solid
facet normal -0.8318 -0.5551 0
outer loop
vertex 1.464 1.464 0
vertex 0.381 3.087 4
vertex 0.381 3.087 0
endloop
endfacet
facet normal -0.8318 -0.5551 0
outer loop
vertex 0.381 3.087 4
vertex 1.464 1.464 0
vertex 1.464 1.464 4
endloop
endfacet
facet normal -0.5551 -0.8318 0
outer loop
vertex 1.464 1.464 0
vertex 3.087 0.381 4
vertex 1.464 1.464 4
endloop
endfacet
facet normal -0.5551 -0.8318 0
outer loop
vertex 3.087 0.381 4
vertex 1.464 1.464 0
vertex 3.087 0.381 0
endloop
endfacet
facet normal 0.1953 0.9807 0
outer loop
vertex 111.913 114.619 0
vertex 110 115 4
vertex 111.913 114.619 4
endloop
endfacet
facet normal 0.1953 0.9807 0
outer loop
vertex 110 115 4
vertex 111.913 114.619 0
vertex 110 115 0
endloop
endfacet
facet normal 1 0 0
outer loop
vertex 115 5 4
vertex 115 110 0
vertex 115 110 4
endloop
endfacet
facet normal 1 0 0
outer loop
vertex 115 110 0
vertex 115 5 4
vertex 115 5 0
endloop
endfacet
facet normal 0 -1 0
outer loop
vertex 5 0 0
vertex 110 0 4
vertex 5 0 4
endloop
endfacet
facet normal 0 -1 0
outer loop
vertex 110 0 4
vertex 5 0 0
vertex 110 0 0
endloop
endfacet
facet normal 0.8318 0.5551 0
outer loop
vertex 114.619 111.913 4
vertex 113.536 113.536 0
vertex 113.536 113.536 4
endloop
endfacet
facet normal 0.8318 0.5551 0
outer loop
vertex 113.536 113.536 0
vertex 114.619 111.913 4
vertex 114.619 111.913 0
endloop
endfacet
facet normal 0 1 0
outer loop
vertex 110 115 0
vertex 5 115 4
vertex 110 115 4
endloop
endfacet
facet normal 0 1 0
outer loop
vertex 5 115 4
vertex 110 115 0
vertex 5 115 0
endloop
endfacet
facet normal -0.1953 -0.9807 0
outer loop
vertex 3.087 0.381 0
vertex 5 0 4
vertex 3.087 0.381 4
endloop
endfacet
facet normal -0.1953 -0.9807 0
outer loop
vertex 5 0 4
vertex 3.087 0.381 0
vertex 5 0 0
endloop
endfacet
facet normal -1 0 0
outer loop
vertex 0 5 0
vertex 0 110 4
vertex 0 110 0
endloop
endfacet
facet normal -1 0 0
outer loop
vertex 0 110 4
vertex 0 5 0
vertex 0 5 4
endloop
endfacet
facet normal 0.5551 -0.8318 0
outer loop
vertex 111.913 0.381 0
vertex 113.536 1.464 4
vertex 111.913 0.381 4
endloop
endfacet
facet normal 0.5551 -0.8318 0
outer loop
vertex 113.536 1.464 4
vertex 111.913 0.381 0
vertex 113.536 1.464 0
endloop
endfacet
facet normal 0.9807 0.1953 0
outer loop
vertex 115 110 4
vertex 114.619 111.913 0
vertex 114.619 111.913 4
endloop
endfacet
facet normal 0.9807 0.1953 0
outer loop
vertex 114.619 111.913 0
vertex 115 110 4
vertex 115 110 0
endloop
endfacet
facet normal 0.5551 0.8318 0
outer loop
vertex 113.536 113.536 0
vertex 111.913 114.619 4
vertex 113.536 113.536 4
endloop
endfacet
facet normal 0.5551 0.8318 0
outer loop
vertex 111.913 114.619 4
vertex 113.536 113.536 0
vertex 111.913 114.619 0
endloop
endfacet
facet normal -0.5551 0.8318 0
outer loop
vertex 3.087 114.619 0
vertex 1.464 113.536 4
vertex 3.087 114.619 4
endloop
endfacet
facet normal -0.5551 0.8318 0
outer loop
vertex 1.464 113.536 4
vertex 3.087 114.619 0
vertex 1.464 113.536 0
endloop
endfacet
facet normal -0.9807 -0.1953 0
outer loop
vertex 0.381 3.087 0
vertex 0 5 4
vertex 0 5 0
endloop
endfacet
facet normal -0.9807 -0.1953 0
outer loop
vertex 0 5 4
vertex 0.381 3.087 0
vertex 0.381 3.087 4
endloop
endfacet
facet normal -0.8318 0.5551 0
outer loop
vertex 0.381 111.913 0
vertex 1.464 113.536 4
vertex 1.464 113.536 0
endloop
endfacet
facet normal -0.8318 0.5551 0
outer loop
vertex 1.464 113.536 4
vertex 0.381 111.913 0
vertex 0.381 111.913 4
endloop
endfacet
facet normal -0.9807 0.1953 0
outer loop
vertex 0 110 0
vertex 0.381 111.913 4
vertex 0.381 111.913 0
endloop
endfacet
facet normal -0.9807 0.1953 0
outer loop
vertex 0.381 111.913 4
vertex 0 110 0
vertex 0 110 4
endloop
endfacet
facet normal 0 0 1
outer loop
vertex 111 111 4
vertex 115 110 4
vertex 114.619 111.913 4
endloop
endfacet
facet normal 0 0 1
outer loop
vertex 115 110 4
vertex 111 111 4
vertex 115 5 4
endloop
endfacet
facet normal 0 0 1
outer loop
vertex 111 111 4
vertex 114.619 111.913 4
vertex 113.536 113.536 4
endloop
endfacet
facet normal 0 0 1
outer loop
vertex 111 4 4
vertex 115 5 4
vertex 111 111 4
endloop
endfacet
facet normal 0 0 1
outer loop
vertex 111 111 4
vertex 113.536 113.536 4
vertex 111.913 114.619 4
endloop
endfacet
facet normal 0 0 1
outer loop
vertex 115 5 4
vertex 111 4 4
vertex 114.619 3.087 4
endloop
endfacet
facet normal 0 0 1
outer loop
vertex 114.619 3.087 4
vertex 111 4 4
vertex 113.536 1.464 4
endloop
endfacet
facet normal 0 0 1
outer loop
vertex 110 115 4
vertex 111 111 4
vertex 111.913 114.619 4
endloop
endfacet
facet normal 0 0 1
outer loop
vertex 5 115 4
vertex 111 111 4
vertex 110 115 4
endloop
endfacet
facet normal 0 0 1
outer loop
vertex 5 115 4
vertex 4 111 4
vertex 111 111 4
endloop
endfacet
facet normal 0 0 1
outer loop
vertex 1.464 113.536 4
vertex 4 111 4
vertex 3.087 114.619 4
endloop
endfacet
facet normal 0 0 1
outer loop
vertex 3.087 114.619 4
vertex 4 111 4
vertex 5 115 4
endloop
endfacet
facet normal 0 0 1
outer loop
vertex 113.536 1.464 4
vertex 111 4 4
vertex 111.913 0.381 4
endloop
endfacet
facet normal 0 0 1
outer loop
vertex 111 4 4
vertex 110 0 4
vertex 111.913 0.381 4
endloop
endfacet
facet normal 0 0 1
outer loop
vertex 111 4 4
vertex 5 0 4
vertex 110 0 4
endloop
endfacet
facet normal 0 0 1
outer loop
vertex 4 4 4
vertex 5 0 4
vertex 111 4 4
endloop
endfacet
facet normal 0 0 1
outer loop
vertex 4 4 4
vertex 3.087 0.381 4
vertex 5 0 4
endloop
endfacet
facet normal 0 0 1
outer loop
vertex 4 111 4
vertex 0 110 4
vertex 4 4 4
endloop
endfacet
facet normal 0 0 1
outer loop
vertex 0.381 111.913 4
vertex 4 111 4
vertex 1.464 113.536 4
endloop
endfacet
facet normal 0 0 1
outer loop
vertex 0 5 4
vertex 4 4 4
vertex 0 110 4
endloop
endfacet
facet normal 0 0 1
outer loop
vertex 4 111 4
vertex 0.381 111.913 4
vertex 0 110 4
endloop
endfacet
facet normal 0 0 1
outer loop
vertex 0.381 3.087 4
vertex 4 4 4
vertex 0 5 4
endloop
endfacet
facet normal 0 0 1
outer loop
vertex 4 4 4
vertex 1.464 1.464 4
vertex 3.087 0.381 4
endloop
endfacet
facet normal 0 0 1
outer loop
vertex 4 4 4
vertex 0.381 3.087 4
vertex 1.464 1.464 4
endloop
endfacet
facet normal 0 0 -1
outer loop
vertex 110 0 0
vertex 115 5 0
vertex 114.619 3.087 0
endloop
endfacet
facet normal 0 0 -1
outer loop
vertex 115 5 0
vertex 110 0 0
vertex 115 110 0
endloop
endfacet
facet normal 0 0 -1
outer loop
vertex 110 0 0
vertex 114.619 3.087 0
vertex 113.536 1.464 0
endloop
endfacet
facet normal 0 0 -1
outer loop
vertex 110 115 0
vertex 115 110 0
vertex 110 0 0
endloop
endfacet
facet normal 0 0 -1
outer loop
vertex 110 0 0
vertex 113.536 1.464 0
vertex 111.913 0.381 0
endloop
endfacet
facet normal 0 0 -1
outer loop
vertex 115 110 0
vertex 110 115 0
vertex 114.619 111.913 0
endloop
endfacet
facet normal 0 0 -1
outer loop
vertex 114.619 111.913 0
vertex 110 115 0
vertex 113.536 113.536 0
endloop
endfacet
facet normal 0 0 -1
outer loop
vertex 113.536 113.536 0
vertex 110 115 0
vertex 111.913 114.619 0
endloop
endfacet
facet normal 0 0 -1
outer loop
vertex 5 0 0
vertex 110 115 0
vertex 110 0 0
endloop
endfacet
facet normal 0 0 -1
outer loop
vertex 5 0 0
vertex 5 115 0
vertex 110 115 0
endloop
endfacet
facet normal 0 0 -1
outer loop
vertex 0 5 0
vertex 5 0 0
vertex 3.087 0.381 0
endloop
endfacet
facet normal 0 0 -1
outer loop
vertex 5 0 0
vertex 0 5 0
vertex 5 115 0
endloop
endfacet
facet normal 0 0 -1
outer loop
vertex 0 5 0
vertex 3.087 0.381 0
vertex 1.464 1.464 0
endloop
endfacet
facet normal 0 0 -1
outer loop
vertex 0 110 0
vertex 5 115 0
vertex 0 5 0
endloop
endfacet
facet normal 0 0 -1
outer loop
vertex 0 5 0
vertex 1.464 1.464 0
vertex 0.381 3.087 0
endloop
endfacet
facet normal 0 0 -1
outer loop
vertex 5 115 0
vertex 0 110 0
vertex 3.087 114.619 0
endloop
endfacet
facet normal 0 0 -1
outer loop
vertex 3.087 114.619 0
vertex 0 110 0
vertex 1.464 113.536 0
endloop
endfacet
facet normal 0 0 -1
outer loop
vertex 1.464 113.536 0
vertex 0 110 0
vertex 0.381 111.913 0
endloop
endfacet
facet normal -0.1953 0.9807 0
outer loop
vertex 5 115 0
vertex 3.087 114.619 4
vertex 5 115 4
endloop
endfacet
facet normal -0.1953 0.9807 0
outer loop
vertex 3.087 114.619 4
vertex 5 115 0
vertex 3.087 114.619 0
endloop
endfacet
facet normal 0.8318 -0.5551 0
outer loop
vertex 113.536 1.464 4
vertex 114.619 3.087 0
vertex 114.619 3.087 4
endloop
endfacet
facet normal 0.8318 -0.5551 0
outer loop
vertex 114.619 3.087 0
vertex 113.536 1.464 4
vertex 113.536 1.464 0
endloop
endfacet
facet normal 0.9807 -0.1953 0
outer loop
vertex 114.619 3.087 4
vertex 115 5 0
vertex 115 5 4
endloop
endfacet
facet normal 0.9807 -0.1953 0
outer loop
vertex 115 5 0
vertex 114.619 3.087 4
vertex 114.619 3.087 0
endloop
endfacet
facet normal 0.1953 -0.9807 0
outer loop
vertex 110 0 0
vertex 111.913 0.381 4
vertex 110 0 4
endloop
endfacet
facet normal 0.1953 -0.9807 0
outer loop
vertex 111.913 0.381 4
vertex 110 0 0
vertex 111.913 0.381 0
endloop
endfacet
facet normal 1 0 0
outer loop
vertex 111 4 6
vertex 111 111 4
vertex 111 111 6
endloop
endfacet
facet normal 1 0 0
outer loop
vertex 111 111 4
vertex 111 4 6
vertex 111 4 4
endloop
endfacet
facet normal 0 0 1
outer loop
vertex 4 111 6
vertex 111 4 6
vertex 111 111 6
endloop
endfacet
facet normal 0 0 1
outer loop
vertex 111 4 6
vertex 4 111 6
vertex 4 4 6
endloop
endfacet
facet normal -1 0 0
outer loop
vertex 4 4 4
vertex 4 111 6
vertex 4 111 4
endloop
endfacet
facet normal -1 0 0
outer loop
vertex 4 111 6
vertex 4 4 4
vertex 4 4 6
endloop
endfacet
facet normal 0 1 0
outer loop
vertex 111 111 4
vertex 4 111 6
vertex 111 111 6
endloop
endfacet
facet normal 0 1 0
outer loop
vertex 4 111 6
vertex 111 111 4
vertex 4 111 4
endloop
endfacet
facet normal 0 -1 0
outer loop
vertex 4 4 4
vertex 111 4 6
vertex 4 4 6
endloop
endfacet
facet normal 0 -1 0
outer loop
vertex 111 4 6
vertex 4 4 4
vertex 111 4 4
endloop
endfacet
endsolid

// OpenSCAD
main();

//////////
// Case //
//////////
module main() {
    translate ([5, 5, 0]) {
        union()
        {
            main_positiv();
            main_negativ();
        }
    }
}

module main_negativ() {
    translate ([-1, -1, 3]) {
        cube([107, 107, 3]);
    }
}

module main_positiv() {
    minkowski() {
        cube([105, 105, 1]);
        cylinder(r=5,h=3);
    }
}
